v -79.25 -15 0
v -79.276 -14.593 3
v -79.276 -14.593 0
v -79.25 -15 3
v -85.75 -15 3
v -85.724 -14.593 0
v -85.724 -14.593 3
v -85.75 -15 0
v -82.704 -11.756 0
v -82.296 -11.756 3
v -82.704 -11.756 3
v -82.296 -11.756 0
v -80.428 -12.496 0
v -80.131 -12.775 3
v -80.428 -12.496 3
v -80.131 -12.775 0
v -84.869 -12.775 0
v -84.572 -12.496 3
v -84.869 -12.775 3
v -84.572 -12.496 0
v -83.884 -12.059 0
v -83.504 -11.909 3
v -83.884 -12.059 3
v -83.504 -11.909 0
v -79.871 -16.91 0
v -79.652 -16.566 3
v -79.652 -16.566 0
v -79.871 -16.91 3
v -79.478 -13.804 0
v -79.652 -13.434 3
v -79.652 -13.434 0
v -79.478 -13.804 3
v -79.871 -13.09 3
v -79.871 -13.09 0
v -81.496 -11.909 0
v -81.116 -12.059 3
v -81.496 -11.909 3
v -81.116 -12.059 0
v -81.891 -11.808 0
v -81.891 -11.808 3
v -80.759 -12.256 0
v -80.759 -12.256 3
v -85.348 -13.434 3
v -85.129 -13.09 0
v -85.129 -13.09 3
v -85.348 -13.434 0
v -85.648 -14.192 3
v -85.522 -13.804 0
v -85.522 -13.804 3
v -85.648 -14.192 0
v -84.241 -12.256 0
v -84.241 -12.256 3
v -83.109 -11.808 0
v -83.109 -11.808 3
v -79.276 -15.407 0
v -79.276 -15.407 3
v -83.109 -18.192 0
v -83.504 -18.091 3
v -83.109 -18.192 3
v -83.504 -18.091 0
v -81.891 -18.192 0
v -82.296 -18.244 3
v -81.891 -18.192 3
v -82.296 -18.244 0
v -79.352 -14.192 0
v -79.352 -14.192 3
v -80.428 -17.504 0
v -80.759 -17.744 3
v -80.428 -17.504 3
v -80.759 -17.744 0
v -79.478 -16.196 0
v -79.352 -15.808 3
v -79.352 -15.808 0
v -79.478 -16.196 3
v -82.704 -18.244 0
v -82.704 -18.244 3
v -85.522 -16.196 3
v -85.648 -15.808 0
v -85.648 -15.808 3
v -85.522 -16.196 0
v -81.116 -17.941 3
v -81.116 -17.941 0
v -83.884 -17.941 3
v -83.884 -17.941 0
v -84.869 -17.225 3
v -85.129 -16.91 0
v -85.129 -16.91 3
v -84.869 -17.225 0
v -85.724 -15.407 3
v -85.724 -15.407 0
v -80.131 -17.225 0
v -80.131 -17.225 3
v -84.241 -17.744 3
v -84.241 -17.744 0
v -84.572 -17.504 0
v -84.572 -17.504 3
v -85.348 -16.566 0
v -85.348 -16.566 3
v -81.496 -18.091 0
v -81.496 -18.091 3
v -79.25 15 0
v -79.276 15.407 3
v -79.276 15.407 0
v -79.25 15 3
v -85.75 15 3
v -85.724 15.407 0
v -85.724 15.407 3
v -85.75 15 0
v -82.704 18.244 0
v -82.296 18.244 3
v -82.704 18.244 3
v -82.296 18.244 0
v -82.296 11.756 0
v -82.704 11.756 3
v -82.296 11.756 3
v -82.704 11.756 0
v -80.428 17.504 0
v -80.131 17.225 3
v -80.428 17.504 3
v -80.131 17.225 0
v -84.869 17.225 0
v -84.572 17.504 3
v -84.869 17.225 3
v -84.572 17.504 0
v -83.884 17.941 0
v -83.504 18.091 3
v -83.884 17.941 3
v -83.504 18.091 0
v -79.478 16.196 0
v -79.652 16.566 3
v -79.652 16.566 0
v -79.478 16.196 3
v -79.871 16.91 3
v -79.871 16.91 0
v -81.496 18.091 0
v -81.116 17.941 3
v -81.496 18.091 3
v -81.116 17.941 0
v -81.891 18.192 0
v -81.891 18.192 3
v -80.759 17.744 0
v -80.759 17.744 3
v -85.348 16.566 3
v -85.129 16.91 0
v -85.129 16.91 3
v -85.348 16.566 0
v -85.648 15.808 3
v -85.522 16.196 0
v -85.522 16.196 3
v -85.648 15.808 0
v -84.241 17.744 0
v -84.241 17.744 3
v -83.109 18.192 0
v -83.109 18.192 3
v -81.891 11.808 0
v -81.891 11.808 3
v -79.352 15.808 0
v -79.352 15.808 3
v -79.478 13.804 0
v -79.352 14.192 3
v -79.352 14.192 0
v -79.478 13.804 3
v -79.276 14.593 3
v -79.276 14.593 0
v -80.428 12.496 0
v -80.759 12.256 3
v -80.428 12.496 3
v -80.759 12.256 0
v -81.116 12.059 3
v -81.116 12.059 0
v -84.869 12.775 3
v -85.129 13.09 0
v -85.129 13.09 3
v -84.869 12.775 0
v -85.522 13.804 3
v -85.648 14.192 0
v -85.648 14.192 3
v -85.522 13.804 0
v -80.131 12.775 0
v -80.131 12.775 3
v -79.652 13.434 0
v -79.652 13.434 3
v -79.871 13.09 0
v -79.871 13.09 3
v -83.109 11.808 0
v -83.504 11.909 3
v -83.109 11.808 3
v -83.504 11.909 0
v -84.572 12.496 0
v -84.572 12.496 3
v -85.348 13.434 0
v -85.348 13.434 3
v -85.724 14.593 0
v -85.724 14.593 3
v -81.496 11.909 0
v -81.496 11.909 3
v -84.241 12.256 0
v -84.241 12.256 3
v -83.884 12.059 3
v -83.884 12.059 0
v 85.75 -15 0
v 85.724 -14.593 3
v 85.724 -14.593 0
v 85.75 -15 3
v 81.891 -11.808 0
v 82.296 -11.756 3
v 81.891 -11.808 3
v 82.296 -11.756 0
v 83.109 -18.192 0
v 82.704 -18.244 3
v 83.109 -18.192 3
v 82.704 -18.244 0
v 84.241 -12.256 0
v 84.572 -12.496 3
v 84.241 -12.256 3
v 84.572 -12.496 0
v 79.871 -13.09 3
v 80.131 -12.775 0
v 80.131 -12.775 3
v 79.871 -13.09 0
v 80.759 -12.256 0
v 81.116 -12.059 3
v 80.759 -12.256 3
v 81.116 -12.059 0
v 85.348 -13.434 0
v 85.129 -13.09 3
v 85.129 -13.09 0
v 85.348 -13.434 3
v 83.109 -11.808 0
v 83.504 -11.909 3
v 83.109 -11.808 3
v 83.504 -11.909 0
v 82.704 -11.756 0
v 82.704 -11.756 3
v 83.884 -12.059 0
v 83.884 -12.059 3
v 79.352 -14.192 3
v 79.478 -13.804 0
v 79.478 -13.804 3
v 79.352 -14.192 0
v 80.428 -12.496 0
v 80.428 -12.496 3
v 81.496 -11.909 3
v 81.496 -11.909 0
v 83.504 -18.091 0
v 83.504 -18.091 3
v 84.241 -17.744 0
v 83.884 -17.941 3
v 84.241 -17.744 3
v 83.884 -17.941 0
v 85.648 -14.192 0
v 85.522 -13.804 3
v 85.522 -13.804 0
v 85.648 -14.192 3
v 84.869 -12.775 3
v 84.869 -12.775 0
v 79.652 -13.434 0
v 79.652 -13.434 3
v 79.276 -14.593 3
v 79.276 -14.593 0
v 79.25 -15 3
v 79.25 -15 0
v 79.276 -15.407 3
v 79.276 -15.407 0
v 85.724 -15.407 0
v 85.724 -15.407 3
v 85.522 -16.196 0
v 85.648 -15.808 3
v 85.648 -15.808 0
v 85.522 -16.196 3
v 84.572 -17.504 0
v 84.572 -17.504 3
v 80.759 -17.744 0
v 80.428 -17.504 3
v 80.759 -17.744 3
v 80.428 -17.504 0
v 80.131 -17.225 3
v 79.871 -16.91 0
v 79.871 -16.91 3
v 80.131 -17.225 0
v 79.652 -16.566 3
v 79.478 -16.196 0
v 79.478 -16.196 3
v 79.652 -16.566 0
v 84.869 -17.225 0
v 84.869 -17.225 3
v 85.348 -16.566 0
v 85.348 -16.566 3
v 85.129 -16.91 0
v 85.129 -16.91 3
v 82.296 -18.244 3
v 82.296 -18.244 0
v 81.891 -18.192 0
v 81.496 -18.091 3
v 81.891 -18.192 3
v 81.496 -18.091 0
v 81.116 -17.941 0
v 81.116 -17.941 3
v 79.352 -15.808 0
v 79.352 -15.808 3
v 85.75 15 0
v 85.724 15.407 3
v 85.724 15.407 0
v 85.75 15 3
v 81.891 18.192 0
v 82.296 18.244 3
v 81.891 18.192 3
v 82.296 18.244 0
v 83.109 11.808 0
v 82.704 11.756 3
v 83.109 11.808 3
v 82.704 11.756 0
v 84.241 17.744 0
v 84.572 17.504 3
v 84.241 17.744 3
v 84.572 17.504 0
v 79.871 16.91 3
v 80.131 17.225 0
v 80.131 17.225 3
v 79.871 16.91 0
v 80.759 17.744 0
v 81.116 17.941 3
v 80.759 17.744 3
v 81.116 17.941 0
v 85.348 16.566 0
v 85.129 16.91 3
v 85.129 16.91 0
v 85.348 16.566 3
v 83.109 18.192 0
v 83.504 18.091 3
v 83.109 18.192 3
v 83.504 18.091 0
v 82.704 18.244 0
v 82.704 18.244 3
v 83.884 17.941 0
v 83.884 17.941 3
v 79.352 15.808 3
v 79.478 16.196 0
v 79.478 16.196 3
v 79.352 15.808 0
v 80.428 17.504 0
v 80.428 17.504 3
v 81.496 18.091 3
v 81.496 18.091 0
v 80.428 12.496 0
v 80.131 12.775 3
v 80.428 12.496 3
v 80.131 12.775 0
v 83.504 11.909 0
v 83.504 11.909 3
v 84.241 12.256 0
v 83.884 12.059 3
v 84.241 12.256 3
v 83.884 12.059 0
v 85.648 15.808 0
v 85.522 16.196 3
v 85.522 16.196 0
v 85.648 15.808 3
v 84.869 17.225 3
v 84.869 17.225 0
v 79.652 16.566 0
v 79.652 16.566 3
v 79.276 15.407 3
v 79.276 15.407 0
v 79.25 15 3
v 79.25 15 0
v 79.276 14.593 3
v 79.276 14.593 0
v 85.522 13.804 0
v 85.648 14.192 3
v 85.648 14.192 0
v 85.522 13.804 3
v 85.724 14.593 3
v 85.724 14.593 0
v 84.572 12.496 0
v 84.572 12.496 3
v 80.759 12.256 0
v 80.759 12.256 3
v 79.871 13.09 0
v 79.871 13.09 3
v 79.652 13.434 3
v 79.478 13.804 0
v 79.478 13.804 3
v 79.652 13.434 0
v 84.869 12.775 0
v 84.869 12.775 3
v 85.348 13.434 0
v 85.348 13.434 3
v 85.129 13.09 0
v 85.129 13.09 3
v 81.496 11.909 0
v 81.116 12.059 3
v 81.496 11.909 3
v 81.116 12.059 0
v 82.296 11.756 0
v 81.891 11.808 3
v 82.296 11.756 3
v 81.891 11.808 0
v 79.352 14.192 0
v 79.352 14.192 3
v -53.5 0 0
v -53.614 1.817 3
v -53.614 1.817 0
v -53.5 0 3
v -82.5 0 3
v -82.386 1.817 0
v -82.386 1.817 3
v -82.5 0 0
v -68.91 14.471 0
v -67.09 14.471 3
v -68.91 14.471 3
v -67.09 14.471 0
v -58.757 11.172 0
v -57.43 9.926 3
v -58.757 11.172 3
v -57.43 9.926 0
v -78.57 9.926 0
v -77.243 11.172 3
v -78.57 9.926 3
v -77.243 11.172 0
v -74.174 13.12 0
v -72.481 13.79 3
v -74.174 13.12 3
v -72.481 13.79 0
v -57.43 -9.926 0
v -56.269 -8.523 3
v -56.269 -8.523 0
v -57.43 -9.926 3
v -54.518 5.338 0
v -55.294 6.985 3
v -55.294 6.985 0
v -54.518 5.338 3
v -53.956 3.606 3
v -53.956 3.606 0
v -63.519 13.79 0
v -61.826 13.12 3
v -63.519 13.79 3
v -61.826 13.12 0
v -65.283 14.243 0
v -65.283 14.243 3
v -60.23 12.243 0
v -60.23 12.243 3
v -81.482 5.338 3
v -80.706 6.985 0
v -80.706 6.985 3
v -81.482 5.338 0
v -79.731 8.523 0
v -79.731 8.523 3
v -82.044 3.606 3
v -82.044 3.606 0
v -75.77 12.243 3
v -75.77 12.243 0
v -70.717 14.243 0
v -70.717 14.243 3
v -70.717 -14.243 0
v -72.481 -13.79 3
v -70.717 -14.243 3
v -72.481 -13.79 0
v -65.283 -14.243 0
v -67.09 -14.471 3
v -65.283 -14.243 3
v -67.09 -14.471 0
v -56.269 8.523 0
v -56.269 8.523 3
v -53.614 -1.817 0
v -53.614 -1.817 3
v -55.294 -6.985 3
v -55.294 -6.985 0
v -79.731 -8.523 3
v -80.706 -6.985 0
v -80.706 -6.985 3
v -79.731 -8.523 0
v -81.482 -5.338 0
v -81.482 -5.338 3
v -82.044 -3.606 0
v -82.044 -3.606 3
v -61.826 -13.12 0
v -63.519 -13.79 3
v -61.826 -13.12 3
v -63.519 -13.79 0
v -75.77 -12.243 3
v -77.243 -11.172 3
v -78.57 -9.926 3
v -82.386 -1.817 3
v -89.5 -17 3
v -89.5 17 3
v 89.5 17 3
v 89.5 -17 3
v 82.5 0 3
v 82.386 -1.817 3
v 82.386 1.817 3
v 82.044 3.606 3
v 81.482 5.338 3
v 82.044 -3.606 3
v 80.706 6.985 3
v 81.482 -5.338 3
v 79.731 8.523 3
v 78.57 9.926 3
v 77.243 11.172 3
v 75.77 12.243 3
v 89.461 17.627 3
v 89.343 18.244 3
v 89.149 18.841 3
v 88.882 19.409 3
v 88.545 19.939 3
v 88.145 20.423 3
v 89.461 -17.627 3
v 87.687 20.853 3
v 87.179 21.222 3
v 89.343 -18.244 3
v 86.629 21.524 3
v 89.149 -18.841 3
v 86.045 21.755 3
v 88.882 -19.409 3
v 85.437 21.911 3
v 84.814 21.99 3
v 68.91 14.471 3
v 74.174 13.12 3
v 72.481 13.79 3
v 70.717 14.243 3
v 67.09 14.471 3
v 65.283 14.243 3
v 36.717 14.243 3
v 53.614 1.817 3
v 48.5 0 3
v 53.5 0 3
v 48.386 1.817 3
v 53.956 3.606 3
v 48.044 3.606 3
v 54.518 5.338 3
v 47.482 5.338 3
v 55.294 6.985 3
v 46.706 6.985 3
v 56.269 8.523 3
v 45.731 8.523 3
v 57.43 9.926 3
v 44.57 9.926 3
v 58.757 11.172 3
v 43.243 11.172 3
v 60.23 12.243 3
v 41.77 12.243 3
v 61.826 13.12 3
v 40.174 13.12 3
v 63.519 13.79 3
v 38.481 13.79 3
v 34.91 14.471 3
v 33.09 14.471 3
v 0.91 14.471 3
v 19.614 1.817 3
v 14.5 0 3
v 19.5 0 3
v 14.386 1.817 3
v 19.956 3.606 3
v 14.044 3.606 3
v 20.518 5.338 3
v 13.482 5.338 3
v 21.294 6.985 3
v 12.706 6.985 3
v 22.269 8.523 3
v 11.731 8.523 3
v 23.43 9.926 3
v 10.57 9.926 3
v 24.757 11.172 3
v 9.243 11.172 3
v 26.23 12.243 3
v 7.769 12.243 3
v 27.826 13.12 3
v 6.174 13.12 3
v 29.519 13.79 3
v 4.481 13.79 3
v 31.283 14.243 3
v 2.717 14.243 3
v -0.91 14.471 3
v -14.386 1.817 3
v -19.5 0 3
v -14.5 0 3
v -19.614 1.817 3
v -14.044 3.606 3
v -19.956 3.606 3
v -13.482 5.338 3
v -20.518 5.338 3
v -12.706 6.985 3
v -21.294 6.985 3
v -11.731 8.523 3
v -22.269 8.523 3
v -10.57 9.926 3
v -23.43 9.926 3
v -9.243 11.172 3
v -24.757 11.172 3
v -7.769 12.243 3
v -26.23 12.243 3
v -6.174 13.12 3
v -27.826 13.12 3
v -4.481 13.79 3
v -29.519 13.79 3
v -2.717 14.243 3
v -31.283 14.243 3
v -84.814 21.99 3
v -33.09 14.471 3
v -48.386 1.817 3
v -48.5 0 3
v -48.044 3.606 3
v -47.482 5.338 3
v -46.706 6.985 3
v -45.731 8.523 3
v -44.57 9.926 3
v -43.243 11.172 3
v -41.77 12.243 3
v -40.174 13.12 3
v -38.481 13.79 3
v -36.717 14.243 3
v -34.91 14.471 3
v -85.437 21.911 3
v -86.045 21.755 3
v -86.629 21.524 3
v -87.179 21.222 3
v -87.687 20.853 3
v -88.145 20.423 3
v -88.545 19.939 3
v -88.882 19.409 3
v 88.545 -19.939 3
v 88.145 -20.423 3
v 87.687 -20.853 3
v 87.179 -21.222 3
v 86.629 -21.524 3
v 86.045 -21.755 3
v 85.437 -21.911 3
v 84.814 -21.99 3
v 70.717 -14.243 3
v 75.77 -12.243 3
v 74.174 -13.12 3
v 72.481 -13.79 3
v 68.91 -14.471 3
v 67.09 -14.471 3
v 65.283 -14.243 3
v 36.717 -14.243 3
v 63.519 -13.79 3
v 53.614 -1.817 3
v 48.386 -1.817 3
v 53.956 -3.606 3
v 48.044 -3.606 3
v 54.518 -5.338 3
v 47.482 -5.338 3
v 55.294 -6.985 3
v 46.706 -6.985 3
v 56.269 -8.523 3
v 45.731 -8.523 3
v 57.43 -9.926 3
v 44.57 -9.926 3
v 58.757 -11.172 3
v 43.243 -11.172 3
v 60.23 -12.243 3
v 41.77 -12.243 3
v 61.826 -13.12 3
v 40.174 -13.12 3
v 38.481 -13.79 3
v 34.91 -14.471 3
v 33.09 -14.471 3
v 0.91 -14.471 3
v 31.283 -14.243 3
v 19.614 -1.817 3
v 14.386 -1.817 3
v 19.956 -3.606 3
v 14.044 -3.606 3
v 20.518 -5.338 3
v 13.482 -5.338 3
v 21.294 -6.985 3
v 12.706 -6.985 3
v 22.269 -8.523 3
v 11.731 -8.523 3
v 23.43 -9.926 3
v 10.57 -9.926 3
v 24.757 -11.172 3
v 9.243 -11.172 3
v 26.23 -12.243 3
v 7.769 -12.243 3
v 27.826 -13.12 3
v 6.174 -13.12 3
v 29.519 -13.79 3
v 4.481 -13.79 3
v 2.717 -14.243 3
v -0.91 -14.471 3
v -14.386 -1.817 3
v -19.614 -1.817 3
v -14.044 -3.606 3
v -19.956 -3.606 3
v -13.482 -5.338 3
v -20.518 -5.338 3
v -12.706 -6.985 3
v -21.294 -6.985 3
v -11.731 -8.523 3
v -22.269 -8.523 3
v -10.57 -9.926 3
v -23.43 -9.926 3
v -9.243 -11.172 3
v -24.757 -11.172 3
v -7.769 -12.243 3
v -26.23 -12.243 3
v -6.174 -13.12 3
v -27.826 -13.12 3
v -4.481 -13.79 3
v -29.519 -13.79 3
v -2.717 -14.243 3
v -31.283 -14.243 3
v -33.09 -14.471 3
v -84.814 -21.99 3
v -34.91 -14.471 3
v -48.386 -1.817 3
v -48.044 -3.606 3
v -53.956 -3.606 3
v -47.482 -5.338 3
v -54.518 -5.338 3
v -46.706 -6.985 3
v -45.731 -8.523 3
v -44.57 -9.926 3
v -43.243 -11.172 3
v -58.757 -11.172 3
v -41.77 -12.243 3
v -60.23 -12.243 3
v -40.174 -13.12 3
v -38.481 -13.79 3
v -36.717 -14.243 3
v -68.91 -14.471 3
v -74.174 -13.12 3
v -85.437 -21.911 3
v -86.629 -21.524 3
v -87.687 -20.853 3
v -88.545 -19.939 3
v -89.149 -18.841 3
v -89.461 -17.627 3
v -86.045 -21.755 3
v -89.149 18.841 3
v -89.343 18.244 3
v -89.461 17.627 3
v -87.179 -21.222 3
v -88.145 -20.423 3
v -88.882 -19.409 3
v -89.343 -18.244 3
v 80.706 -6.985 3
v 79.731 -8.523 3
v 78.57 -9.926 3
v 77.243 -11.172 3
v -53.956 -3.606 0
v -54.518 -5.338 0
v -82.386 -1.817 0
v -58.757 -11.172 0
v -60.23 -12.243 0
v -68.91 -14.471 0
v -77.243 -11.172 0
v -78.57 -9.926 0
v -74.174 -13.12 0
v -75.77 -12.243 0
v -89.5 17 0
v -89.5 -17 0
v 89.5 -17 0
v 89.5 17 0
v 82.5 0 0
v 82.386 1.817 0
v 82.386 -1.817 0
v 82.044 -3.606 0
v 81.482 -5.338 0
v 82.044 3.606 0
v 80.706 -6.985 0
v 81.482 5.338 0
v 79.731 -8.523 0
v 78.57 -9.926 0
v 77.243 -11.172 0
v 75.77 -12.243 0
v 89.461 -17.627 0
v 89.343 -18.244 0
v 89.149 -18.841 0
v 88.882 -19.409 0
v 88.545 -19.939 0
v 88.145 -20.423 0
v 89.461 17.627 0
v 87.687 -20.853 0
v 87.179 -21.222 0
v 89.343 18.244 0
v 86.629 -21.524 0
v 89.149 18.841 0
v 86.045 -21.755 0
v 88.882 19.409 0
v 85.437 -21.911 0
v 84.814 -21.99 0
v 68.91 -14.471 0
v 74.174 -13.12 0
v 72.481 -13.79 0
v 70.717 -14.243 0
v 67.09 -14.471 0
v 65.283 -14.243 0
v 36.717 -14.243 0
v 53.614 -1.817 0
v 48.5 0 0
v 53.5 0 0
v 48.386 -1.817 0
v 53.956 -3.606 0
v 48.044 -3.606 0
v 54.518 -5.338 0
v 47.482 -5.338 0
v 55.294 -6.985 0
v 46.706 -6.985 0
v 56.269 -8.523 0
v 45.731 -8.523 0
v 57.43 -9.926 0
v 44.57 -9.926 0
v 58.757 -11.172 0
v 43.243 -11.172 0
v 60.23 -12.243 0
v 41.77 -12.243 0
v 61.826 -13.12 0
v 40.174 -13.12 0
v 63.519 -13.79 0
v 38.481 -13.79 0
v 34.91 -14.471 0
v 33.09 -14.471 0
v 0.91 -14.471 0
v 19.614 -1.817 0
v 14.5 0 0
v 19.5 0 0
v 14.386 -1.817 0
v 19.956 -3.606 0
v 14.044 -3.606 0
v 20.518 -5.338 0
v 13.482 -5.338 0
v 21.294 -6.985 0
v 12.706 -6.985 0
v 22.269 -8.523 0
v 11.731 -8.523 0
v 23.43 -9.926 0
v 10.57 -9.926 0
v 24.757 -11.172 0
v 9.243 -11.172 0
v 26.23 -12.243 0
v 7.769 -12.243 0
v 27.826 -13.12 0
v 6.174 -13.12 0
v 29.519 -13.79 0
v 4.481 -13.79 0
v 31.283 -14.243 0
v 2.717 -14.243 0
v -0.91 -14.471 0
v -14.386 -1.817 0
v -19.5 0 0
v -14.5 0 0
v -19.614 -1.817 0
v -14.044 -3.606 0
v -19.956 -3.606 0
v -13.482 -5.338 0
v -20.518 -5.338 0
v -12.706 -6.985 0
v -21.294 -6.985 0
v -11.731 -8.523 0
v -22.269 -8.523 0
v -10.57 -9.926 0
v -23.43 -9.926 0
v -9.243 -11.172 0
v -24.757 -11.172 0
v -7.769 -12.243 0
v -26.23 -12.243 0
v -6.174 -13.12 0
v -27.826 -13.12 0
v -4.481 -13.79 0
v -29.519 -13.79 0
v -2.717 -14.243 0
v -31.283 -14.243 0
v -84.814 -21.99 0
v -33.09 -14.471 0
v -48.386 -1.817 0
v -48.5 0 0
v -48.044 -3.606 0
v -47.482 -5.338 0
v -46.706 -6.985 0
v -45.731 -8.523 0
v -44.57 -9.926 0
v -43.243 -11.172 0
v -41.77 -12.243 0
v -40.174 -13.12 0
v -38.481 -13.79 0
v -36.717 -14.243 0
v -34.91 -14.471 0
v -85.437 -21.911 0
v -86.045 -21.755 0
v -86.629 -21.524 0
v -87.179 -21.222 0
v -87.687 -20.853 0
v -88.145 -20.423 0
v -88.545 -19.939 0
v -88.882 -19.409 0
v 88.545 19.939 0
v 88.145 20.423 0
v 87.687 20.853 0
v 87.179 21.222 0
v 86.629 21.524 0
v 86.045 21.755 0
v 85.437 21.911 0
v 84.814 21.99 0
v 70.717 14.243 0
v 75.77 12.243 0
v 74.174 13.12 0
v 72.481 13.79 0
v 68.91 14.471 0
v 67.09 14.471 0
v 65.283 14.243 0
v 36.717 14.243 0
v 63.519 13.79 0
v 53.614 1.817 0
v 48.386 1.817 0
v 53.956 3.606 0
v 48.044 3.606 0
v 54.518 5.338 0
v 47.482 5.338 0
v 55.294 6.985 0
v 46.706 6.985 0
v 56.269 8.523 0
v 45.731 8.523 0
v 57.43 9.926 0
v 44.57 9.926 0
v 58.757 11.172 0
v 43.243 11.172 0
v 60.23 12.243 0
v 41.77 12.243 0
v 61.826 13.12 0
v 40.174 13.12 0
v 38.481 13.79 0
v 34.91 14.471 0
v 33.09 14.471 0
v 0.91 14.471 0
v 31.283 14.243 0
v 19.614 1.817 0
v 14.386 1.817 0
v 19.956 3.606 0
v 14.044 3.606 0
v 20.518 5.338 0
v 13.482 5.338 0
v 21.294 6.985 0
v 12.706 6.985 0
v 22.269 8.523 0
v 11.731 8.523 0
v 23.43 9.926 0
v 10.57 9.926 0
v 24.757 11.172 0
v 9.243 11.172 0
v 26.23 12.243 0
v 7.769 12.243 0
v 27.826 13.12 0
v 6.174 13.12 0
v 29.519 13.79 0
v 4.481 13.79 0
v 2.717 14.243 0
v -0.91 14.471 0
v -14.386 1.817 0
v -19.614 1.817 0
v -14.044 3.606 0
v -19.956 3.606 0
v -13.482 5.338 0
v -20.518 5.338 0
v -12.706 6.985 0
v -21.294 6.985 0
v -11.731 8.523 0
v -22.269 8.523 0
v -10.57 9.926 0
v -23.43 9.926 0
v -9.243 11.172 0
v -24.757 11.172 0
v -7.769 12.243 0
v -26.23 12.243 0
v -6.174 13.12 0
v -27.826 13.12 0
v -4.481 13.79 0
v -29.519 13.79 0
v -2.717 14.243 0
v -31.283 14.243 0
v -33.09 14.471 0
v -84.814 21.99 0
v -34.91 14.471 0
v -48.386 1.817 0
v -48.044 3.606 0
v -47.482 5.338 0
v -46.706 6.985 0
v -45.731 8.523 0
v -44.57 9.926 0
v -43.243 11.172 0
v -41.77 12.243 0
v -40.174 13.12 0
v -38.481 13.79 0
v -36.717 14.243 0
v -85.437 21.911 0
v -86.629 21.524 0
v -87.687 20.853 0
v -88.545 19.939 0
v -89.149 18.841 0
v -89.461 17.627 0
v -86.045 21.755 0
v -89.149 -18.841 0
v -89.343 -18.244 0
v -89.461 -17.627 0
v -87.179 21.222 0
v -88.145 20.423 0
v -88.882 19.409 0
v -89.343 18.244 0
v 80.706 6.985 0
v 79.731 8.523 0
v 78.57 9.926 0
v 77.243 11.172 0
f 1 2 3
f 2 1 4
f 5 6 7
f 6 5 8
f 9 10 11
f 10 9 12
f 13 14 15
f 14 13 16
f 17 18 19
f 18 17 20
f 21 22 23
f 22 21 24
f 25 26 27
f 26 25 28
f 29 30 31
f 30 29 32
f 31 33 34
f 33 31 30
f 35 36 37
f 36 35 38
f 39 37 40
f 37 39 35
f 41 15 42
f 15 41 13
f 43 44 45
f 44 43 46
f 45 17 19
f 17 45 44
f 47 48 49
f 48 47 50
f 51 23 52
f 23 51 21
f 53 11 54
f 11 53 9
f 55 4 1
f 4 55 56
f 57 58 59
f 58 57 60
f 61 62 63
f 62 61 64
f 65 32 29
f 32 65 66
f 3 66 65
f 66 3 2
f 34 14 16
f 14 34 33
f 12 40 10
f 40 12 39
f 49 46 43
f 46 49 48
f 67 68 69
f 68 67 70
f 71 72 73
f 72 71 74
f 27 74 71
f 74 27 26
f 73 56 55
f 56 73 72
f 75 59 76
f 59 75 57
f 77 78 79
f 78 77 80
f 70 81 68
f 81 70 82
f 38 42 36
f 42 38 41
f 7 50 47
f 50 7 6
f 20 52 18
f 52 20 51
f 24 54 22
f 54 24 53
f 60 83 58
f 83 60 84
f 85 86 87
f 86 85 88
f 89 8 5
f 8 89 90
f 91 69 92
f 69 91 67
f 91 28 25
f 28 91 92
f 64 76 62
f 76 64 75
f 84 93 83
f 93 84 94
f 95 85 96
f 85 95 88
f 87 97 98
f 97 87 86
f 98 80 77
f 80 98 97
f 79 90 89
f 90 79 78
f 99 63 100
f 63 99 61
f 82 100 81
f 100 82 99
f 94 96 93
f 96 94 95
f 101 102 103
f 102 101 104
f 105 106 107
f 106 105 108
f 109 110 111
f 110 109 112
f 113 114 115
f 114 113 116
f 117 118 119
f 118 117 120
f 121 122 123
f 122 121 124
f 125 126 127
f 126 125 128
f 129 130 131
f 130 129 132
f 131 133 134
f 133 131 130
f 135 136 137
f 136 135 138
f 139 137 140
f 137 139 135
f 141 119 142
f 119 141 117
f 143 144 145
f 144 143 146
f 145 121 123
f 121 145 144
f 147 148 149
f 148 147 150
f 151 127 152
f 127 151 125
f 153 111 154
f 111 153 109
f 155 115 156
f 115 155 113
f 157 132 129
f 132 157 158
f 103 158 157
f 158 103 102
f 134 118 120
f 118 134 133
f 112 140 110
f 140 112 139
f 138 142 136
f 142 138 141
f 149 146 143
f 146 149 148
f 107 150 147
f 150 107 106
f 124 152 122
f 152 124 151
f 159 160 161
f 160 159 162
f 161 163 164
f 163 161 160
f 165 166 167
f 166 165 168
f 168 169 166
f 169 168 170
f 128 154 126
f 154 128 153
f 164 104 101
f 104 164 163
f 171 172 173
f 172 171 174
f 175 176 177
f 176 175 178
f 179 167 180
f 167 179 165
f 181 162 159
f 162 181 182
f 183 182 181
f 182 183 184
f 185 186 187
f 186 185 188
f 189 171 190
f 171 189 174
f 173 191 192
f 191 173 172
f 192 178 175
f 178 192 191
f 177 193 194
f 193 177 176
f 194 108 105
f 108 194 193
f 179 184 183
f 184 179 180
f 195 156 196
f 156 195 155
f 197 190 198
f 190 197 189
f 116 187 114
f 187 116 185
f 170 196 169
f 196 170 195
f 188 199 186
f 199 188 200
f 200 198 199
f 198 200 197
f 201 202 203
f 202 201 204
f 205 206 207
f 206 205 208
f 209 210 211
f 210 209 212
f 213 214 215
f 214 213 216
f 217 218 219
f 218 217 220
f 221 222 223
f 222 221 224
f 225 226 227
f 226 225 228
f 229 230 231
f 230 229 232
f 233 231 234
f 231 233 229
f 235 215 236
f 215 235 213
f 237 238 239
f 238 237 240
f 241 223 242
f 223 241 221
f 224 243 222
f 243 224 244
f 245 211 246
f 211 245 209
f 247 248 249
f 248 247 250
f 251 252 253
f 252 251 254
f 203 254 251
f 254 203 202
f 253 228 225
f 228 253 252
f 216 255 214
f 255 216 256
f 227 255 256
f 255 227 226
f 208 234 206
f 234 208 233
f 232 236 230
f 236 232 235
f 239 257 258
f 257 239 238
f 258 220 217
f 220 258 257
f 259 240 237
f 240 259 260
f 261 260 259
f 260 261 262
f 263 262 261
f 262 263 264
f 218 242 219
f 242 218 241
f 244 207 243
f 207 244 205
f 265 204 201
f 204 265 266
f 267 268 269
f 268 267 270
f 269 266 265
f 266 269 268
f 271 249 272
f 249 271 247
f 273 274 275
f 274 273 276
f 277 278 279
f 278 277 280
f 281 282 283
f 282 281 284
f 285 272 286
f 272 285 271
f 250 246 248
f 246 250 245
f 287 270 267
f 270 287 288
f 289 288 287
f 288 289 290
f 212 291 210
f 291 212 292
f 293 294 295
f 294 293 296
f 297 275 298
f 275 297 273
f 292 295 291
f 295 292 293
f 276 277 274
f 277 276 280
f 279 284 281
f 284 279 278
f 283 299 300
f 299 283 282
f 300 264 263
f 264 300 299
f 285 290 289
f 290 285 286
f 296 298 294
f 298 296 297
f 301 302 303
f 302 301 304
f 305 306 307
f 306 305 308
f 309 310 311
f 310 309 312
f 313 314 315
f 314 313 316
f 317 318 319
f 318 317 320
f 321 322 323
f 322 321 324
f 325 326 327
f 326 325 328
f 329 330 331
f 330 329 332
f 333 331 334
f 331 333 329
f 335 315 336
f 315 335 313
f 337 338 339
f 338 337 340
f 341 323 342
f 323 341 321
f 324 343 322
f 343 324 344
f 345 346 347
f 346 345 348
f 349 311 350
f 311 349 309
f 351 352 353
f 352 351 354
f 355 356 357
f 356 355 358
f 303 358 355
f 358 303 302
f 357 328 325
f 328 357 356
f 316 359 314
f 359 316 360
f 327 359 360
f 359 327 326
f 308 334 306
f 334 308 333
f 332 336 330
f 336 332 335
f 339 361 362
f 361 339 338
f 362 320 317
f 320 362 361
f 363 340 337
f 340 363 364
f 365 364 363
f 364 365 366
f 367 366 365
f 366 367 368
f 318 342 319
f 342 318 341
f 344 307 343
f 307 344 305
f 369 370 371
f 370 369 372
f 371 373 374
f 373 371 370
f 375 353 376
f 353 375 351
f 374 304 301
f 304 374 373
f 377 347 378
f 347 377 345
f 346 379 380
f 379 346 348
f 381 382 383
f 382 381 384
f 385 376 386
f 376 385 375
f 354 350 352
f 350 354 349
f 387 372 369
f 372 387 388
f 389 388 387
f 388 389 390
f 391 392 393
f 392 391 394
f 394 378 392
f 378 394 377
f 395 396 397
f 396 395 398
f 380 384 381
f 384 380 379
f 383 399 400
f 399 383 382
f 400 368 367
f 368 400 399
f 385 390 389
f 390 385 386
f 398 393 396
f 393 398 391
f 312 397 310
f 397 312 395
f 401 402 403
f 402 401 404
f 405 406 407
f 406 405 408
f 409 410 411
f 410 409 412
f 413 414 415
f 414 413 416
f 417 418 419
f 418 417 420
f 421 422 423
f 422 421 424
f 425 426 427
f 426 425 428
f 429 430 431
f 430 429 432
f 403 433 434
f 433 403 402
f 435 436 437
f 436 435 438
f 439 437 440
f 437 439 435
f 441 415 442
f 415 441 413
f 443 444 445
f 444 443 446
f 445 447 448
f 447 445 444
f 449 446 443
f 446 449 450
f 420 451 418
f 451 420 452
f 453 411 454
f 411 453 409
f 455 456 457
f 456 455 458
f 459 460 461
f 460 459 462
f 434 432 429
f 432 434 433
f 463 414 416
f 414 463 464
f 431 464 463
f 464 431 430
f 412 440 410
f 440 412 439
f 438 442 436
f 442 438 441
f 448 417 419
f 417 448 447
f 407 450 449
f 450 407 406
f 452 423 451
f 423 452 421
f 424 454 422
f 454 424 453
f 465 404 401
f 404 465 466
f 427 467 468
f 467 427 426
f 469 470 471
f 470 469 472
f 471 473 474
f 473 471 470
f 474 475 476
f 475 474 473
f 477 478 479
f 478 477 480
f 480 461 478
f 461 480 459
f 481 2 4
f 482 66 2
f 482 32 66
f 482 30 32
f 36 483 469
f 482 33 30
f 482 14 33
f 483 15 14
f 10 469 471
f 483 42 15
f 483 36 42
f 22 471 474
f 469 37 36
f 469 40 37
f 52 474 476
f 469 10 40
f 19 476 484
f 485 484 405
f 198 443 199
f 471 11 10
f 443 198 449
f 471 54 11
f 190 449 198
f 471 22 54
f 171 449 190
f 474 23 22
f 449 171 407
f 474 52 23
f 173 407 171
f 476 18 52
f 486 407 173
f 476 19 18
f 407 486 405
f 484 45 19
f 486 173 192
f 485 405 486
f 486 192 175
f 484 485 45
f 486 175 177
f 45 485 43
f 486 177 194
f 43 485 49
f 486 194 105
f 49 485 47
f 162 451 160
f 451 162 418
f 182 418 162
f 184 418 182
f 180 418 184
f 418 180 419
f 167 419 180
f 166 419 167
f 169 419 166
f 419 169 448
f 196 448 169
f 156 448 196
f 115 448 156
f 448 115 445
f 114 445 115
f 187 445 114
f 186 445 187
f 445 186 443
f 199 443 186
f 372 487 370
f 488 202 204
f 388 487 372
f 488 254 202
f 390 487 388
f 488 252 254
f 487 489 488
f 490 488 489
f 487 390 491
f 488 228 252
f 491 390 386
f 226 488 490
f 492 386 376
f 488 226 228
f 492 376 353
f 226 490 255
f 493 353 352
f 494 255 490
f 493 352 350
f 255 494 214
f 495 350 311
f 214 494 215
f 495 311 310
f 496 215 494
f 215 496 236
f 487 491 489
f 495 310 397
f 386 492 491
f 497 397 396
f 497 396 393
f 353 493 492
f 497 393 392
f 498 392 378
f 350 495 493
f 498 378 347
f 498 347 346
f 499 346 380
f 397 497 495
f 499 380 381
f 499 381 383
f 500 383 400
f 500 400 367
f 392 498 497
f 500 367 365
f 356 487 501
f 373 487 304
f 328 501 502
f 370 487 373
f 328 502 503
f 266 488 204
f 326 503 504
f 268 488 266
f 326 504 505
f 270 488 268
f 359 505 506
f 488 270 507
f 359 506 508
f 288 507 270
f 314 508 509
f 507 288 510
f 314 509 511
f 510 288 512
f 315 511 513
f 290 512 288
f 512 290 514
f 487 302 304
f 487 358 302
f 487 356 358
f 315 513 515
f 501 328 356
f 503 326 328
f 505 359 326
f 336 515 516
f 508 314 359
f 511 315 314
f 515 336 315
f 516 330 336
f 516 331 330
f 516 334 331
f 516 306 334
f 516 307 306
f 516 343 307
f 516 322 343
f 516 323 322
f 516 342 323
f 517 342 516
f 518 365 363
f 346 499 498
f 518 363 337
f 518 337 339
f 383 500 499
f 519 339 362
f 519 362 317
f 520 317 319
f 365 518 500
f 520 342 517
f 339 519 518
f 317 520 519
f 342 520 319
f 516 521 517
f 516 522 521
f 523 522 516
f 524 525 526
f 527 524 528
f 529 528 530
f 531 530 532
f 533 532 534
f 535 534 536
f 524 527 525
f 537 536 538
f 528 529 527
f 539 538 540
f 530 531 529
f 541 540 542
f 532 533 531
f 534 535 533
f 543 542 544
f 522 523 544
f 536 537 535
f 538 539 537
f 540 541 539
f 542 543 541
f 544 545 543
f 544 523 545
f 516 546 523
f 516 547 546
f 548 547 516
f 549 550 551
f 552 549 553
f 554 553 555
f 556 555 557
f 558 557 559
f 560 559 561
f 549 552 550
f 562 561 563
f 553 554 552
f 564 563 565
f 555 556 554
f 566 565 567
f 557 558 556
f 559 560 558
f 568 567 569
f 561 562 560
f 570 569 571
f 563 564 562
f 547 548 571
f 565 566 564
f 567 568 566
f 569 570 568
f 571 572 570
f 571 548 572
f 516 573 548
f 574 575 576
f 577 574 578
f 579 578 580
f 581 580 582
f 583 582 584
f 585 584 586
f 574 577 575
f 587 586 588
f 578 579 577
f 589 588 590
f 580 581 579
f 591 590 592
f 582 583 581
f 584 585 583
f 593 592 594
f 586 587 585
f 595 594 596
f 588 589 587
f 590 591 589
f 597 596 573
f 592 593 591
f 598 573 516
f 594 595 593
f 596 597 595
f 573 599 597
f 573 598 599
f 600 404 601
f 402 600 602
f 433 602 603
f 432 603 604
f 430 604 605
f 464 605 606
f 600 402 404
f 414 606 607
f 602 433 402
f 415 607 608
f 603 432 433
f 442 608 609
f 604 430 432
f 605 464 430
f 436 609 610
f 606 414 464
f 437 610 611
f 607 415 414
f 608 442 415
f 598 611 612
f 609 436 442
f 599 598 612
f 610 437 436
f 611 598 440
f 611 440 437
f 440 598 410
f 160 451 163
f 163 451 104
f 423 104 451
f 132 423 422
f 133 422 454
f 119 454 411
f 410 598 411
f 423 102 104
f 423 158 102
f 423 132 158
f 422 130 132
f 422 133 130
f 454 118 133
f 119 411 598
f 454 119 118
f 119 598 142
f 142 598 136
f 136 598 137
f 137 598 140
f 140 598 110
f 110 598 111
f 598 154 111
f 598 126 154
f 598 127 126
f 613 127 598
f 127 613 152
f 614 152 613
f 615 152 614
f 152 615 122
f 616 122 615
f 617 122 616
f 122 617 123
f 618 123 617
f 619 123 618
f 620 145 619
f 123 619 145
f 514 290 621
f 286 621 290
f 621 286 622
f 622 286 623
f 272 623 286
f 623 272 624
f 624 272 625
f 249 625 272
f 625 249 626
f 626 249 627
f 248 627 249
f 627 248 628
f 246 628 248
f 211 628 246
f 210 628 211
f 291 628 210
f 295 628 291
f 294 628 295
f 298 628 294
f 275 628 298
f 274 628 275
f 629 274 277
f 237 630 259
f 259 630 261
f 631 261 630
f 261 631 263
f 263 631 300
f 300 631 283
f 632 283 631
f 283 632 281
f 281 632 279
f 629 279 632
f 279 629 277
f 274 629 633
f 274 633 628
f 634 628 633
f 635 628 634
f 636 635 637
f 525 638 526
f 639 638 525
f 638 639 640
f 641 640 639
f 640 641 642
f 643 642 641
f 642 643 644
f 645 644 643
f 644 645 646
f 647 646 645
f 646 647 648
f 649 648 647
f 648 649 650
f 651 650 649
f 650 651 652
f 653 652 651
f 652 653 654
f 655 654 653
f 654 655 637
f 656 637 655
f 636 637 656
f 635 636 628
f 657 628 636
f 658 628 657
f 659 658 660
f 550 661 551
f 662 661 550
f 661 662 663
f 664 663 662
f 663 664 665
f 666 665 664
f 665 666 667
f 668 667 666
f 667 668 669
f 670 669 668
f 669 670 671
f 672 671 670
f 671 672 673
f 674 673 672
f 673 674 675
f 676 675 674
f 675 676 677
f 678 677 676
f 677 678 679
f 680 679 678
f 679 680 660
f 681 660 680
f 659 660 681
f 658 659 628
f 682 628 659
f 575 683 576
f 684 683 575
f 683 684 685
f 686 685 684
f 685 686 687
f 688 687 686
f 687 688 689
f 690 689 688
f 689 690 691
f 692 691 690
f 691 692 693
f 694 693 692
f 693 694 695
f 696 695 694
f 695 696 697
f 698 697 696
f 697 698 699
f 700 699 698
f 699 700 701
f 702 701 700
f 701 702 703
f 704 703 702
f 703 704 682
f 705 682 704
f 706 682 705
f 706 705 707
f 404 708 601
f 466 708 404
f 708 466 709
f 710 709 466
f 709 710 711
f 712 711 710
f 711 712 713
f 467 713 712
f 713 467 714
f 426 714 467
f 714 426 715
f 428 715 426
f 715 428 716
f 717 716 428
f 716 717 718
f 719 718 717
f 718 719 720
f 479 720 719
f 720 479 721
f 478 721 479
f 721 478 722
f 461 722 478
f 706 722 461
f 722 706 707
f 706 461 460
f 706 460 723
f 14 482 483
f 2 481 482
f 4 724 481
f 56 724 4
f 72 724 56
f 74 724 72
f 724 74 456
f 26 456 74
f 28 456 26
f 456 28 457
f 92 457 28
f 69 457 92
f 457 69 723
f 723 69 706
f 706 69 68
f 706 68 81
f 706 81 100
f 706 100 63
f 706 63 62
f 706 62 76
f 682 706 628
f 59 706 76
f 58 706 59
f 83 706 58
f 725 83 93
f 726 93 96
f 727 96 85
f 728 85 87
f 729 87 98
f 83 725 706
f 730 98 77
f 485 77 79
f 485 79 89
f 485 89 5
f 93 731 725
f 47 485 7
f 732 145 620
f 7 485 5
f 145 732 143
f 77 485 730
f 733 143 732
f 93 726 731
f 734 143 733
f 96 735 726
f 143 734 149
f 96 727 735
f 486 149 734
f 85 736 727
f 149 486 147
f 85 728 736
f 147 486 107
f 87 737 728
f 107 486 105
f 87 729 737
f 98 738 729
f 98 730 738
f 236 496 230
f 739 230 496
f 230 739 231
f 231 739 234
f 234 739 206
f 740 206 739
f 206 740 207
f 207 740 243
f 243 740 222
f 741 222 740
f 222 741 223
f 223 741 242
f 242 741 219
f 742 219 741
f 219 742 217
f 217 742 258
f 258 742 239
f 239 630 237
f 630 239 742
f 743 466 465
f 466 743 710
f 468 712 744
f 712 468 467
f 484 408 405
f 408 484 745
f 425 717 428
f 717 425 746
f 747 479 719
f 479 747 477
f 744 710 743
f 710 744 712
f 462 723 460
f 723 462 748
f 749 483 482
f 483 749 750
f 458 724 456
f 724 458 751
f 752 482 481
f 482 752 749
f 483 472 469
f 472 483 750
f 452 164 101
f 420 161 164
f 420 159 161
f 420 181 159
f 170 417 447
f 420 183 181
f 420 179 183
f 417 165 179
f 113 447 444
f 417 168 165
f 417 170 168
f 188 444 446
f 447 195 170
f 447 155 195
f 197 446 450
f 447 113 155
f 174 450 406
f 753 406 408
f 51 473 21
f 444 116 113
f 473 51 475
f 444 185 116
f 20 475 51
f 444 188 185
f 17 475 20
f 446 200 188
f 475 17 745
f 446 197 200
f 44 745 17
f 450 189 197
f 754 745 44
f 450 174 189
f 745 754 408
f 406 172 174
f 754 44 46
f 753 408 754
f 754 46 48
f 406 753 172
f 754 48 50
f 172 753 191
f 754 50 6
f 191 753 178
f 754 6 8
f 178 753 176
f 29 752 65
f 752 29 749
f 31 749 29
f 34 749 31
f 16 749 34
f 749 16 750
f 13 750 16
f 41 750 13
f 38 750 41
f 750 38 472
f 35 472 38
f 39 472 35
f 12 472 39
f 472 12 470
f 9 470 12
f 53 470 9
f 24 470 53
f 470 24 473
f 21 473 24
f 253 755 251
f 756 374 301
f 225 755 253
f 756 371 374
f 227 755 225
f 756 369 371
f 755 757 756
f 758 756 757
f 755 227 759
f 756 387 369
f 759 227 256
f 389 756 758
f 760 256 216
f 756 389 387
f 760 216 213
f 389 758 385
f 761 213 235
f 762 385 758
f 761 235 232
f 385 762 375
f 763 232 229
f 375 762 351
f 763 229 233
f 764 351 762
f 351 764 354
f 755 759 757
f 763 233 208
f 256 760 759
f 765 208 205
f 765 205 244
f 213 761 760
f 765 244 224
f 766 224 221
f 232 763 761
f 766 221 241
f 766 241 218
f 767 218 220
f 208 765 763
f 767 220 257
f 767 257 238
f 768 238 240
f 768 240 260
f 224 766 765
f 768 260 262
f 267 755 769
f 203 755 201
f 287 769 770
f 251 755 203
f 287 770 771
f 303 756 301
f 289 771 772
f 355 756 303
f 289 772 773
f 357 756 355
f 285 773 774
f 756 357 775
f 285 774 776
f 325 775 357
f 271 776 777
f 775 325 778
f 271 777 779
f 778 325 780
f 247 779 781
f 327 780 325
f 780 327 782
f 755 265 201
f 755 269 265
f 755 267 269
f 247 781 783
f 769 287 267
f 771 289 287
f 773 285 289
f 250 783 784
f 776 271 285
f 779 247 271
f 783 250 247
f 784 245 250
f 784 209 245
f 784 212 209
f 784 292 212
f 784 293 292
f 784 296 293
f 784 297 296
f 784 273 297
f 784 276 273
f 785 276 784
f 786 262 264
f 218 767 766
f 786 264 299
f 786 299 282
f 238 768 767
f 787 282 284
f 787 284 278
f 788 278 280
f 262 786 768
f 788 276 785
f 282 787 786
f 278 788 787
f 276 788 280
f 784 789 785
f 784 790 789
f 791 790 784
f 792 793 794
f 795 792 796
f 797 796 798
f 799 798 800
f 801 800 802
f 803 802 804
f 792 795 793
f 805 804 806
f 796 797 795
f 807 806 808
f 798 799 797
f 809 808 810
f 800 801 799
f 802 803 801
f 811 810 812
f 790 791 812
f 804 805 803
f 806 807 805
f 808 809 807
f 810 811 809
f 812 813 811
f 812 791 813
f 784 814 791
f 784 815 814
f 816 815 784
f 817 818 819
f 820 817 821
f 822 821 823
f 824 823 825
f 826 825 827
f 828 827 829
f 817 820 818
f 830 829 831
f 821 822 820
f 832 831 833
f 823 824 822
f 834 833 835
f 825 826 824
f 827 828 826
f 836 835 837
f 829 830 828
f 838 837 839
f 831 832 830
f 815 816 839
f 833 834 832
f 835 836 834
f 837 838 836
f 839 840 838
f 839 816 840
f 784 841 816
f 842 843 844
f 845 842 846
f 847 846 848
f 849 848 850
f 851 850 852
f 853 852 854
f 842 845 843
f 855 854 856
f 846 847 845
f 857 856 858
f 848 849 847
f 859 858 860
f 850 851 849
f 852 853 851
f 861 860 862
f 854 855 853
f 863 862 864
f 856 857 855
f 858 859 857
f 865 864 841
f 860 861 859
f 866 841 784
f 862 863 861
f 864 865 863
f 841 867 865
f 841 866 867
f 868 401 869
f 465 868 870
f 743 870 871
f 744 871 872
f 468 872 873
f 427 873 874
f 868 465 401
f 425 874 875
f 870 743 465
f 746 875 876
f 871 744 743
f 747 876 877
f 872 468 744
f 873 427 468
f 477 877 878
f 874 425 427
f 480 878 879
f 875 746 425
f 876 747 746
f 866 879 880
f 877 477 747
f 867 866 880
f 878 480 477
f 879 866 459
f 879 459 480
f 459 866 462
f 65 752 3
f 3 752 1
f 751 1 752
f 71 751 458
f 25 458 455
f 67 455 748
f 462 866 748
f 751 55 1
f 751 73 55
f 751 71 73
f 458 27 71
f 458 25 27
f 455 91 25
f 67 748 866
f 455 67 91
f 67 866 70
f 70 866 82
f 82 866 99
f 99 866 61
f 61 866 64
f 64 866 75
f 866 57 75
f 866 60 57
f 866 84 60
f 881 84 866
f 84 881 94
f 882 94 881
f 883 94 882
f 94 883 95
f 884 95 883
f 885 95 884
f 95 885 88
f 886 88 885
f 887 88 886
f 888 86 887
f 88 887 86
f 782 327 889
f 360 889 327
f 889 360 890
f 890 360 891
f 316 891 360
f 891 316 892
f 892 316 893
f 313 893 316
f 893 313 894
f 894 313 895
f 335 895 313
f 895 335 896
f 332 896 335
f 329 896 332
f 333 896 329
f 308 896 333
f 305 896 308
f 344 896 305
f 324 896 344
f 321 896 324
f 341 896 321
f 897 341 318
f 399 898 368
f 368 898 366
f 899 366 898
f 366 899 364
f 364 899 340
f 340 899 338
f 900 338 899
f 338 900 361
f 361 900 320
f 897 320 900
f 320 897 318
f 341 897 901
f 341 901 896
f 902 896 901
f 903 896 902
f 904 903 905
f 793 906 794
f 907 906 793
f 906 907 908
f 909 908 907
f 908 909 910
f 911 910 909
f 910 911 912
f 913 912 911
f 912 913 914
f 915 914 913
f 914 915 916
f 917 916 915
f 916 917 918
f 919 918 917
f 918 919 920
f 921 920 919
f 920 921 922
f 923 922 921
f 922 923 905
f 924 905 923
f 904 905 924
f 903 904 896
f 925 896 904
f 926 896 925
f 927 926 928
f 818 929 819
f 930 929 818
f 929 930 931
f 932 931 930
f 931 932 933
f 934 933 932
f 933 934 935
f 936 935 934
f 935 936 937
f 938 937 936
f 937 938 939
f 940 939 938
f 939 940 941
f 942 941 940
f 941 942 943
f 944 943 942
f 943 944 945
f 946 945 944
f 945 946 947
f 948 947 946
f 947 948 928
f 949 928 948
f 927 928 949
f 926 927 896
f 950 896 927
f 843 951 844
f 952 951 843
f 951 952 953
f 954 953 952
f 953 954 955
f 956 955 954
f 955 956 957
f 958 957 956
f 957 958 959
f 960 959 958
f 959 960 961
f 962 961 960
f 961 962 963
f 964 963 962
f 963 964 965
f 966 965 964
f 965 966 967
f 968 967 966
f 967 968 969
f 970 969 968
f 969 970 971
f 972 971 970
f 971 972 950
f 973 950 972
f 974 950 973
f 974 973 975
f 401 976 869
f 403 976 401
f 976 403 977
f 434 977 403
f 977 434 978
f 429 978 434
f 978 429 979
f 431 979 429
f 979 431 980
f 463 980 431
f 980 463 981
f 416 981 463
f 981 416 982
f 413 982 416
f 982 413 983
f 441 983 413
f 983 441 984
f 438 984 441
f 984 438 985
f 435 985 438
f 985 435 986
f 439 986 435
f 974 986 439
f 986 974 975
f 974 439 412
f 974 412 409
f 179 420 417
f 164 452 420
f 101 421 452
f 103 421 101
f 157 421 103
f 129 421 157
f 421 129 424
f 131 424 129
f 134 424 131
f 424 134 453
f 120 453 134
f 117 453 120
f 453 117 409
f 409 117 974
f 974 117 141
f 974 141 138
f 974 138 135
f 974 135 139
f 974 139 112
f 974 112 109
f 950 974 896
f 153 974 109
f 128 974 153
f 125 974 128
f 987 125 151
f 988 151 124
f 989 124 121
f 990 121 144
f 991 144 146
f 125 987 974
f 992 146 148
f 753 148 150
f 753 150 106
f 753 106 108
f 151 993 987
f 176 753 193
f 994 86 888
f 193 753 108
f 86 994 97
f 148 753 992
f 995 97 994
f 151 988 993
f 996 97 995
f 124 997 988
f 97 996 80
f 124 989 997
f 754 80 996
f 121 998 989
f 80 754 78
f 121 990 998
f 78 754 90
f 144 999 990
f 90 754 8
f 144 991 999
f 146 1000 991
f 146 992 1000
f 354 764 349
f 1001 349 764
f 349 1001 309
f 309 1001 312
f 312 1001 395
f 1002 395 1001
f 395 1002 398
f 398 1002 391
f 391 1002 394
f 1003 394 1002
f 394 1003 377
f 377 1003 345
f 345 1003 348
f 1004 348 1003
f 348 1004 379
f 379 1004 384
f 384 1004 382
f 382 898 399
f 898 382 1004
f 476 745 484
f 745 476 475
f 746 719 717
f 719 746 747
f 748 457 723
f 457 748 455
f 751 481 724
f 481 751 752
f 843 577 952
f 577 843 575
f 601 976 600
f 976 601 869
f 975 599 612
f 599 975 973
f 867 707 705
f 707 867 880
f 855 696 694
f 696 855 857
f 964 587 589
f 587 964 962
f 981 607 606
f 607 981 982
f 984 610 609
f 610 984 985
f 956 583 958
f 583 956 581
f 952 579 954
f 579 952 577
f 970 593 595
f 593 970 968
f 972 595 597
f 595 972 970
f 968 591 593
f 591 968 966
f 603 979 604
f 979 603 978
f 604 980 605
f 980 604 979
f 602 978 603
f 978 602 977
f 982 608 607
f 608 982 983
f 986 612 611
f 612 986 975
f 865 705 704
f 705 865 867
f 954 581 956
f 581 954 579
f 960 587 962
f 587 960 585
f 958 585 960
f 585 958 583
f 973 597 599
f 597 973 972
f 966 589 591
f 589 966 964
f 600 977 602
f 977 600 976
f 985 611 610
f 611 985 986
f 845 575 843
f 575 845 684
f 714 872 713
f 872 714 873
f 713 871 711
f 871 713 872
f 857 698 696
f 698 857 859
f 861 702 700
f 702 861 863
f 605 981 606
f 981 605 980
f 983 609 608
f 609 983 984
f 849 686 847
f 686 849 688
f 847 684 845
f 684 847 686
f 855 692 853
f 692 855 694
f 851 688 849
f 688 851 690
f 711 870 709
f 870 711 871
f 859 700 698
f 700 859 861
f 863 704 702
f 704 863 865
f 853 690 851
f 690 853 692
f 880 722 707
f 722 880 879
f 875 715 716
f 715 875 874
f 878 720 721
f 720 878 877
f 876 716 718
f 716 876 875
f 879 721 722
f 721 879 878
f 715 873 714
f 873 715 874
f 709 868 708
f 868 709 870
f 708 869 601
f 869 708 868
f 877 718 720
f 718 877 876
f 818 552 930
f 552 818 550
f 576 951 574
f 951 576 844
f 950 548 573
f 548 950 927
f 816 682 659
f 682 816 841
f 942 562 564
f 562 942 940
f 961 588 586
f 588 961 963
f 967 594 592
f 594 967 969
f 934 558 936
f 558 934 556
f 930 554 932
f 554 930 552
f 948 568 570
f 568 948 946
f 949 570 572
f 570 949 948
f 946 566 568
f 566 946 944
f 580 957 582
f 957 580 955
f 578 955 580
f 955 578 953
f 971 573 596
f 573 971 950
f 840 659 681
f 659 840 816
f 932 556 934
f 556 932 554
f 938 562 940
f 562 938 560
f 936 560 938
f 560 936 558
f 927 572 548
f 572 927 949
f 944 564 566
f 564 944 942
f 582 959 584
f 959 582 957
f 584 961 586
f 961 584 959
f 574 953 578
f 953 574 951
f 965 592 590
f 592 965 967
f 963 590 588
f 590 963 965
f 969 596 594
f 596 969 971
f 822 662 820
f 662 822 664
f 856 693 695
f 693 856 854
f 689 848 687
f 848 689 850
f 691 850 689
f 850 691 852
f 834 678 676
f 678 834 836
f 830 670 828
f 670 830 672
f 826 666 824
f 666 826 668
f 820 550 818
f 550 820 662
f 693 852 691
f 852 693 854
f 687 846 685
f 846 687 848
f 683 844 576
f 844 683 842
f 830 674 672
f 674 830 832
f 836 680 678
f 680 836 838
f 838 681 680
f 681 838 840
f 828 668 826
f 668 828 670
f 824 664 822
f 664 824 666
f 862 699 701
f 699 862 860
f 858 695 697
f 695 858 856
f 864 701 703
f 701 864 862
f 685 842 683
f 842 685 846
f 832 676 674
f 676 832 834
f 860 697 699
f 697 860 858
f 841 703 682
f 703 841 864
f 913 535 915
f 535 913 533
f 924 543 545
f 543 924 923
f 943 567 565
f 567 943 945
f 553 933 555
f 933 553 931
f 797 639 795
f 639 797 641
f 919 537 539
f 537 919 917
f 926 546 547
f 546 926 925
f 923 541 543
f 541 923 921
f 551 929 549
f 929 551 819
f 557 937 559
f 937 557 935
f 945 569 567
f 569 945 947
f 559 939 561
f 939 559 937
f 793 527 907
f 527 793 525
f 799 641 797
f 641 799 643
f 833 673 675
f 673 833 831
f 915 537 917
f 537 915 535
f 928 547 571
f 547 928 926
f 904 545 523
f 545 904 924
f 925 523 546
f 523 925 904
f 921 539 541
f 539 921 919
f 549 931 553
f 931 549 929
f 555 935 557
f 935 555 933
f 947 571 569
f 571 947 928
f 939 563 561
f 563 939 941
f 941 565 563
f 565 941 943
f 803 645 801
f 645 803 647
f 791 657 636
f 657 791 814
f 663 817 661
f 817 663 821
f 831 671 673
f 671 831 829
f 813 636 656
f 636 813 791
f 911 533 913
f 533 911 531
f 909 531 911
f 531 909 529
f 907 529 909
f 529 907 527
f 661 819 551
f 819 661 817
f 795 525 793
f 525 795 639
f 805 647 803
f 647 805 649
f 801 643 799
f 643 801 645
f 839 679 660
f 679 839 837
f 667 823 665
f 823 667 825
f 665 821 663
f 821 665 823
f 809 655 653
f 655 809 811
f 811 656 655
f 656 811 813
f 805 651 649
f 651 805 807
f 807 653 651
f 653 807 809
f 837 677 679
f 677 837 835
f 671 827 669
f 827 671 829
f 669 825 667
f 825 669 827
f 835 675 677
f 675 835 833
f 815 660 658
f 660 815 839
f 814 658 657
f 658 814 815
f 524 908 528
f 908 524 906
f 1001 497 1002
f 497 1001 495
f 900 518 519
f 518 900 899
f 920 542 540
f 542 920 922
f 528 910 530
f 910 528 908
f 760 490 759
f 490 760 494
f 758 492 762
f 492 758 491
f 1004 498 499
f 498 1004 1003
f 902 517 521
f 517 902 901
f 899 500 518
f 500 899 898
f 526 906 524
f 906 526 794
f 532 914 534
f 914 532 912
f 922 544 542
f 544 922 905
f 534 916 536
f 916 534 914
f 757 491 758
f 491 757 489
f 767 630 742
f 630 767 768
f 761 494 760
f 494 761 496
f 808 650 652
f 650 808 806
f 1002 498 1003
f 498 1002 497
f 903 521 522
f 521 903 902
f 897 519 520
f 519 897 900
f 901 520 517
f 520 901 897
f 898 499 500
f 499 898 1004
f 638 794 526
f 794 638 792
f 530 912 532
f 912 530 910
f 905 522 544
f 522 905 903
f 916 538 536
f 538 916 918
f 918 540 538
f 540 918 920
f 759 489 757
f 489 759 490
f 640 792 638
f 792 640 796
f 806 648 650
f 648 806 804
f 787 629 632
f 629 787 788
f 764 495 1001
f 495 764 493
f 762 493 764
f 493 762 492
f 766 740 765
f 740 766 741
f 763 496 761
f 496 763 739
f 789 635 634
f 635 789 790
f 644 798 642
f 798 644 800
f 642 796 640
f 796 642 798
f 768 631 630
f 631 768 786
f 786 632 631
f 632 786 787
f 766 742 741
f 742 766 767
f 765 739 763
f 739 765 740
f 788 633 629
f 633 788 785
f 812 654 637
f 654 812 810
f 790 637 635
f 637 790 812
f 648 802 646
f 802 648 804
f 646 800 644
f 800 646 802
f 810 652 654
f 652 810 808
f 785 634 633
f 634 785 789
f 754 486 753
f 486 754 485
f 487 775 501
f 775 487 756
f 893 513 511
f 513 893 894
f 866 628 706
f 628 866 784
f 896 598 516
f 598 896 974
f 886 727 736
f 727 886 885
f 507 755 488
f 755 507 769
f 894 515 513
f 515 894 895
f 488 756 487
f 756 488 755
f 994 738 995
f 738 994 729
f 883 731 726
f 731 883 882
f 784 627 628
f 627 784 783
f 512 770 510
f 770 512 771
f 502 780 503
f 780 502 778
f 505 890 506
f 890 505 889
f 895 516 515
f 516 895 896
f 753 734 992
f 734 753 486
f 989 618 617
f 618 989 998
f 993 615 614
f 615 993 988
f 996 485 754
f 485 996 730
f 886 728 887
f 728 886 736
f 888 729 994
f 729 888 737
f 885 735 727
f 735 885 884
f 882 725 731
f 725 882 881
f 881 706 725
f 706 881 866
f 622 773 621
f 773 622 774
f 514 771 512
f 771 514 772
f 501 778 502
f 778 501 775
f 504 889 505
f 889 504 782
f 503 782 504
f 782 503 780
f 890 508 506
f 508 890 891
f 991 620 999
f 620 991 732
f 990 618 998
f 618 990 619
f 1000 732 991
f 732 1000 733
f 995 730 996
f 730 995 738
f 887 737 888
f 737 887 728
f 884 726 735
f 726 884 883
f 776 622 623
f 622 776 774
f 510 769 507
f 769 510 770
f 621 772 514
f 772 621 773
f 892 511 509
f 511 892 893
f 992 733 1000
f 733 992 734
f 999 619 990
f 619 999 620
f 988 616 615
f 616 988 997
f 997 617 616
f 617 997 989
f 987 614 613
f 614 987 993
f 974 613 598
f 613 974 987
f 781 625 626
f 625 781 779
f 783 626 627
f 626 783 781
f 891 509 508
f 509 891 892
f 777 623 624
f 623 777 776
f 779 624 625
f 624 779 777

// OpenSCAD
$fn = 50;


difference() {
	union() {
		hull() {
			translate(v = [-84.5000000000, 17.0000000000, 0]) {
				cylinder(h = 3, r = 5);
			}
			translate(v = [84.5000000000, 17.0000000000, 0]) {
				cylinder(h = 3, r = 5);
			}
			translate(v = [-84.5000000000, -17.0000000000, 0]) {
				cylinder(h = 3, r = 5);
			}
			translate(v = [84.5000000000, -17.0000000000, 0]) {
				cylinder(h = 3, r = 5);
			}
		}
	}
	union() {
		#translate(v = [-82.5000000000, -15.0000000000, -100.0000000000]) {
			cylinder(h = 200, r = 3.2500000000);
		}
		#translate(v = [-82.5000000000, 15.0000000000, -100.0000000000]) {
			cylinder(h = 200, r = 3.2500000000);
		}
		#translate(v = [82.5000000000, -15.0000000000, -100.0000000000]) {
			cylinder(h = 200, r = 3.2500000000);
		}
		#translate(v = [82.5000000000, 15.0000000000, -100.0000000000]) {
			cylinder(h = 200, r = 3.2500000000);
		}
		#translate(v = [-68.0000000000, 0, 0]) {
			cylinder(h = 3, r = 14.5000000000);
		}
		#translate(v = [-34.0000000000, 0, 0]) {
			cylinder(h = 3, r = 14.5000000000);
		}
		#cylinder(h = 3, r = 14.5000000000);
		#translate(v = [34.0000000000, 0, 0]) {
			cylinder(h = 3, r = 14.5000000000);
		}
		#translate(v = [68.0000000000, 0, 0]) {
			cylinder(h = 3, r = 14.5000000000);
		}
	}
}
